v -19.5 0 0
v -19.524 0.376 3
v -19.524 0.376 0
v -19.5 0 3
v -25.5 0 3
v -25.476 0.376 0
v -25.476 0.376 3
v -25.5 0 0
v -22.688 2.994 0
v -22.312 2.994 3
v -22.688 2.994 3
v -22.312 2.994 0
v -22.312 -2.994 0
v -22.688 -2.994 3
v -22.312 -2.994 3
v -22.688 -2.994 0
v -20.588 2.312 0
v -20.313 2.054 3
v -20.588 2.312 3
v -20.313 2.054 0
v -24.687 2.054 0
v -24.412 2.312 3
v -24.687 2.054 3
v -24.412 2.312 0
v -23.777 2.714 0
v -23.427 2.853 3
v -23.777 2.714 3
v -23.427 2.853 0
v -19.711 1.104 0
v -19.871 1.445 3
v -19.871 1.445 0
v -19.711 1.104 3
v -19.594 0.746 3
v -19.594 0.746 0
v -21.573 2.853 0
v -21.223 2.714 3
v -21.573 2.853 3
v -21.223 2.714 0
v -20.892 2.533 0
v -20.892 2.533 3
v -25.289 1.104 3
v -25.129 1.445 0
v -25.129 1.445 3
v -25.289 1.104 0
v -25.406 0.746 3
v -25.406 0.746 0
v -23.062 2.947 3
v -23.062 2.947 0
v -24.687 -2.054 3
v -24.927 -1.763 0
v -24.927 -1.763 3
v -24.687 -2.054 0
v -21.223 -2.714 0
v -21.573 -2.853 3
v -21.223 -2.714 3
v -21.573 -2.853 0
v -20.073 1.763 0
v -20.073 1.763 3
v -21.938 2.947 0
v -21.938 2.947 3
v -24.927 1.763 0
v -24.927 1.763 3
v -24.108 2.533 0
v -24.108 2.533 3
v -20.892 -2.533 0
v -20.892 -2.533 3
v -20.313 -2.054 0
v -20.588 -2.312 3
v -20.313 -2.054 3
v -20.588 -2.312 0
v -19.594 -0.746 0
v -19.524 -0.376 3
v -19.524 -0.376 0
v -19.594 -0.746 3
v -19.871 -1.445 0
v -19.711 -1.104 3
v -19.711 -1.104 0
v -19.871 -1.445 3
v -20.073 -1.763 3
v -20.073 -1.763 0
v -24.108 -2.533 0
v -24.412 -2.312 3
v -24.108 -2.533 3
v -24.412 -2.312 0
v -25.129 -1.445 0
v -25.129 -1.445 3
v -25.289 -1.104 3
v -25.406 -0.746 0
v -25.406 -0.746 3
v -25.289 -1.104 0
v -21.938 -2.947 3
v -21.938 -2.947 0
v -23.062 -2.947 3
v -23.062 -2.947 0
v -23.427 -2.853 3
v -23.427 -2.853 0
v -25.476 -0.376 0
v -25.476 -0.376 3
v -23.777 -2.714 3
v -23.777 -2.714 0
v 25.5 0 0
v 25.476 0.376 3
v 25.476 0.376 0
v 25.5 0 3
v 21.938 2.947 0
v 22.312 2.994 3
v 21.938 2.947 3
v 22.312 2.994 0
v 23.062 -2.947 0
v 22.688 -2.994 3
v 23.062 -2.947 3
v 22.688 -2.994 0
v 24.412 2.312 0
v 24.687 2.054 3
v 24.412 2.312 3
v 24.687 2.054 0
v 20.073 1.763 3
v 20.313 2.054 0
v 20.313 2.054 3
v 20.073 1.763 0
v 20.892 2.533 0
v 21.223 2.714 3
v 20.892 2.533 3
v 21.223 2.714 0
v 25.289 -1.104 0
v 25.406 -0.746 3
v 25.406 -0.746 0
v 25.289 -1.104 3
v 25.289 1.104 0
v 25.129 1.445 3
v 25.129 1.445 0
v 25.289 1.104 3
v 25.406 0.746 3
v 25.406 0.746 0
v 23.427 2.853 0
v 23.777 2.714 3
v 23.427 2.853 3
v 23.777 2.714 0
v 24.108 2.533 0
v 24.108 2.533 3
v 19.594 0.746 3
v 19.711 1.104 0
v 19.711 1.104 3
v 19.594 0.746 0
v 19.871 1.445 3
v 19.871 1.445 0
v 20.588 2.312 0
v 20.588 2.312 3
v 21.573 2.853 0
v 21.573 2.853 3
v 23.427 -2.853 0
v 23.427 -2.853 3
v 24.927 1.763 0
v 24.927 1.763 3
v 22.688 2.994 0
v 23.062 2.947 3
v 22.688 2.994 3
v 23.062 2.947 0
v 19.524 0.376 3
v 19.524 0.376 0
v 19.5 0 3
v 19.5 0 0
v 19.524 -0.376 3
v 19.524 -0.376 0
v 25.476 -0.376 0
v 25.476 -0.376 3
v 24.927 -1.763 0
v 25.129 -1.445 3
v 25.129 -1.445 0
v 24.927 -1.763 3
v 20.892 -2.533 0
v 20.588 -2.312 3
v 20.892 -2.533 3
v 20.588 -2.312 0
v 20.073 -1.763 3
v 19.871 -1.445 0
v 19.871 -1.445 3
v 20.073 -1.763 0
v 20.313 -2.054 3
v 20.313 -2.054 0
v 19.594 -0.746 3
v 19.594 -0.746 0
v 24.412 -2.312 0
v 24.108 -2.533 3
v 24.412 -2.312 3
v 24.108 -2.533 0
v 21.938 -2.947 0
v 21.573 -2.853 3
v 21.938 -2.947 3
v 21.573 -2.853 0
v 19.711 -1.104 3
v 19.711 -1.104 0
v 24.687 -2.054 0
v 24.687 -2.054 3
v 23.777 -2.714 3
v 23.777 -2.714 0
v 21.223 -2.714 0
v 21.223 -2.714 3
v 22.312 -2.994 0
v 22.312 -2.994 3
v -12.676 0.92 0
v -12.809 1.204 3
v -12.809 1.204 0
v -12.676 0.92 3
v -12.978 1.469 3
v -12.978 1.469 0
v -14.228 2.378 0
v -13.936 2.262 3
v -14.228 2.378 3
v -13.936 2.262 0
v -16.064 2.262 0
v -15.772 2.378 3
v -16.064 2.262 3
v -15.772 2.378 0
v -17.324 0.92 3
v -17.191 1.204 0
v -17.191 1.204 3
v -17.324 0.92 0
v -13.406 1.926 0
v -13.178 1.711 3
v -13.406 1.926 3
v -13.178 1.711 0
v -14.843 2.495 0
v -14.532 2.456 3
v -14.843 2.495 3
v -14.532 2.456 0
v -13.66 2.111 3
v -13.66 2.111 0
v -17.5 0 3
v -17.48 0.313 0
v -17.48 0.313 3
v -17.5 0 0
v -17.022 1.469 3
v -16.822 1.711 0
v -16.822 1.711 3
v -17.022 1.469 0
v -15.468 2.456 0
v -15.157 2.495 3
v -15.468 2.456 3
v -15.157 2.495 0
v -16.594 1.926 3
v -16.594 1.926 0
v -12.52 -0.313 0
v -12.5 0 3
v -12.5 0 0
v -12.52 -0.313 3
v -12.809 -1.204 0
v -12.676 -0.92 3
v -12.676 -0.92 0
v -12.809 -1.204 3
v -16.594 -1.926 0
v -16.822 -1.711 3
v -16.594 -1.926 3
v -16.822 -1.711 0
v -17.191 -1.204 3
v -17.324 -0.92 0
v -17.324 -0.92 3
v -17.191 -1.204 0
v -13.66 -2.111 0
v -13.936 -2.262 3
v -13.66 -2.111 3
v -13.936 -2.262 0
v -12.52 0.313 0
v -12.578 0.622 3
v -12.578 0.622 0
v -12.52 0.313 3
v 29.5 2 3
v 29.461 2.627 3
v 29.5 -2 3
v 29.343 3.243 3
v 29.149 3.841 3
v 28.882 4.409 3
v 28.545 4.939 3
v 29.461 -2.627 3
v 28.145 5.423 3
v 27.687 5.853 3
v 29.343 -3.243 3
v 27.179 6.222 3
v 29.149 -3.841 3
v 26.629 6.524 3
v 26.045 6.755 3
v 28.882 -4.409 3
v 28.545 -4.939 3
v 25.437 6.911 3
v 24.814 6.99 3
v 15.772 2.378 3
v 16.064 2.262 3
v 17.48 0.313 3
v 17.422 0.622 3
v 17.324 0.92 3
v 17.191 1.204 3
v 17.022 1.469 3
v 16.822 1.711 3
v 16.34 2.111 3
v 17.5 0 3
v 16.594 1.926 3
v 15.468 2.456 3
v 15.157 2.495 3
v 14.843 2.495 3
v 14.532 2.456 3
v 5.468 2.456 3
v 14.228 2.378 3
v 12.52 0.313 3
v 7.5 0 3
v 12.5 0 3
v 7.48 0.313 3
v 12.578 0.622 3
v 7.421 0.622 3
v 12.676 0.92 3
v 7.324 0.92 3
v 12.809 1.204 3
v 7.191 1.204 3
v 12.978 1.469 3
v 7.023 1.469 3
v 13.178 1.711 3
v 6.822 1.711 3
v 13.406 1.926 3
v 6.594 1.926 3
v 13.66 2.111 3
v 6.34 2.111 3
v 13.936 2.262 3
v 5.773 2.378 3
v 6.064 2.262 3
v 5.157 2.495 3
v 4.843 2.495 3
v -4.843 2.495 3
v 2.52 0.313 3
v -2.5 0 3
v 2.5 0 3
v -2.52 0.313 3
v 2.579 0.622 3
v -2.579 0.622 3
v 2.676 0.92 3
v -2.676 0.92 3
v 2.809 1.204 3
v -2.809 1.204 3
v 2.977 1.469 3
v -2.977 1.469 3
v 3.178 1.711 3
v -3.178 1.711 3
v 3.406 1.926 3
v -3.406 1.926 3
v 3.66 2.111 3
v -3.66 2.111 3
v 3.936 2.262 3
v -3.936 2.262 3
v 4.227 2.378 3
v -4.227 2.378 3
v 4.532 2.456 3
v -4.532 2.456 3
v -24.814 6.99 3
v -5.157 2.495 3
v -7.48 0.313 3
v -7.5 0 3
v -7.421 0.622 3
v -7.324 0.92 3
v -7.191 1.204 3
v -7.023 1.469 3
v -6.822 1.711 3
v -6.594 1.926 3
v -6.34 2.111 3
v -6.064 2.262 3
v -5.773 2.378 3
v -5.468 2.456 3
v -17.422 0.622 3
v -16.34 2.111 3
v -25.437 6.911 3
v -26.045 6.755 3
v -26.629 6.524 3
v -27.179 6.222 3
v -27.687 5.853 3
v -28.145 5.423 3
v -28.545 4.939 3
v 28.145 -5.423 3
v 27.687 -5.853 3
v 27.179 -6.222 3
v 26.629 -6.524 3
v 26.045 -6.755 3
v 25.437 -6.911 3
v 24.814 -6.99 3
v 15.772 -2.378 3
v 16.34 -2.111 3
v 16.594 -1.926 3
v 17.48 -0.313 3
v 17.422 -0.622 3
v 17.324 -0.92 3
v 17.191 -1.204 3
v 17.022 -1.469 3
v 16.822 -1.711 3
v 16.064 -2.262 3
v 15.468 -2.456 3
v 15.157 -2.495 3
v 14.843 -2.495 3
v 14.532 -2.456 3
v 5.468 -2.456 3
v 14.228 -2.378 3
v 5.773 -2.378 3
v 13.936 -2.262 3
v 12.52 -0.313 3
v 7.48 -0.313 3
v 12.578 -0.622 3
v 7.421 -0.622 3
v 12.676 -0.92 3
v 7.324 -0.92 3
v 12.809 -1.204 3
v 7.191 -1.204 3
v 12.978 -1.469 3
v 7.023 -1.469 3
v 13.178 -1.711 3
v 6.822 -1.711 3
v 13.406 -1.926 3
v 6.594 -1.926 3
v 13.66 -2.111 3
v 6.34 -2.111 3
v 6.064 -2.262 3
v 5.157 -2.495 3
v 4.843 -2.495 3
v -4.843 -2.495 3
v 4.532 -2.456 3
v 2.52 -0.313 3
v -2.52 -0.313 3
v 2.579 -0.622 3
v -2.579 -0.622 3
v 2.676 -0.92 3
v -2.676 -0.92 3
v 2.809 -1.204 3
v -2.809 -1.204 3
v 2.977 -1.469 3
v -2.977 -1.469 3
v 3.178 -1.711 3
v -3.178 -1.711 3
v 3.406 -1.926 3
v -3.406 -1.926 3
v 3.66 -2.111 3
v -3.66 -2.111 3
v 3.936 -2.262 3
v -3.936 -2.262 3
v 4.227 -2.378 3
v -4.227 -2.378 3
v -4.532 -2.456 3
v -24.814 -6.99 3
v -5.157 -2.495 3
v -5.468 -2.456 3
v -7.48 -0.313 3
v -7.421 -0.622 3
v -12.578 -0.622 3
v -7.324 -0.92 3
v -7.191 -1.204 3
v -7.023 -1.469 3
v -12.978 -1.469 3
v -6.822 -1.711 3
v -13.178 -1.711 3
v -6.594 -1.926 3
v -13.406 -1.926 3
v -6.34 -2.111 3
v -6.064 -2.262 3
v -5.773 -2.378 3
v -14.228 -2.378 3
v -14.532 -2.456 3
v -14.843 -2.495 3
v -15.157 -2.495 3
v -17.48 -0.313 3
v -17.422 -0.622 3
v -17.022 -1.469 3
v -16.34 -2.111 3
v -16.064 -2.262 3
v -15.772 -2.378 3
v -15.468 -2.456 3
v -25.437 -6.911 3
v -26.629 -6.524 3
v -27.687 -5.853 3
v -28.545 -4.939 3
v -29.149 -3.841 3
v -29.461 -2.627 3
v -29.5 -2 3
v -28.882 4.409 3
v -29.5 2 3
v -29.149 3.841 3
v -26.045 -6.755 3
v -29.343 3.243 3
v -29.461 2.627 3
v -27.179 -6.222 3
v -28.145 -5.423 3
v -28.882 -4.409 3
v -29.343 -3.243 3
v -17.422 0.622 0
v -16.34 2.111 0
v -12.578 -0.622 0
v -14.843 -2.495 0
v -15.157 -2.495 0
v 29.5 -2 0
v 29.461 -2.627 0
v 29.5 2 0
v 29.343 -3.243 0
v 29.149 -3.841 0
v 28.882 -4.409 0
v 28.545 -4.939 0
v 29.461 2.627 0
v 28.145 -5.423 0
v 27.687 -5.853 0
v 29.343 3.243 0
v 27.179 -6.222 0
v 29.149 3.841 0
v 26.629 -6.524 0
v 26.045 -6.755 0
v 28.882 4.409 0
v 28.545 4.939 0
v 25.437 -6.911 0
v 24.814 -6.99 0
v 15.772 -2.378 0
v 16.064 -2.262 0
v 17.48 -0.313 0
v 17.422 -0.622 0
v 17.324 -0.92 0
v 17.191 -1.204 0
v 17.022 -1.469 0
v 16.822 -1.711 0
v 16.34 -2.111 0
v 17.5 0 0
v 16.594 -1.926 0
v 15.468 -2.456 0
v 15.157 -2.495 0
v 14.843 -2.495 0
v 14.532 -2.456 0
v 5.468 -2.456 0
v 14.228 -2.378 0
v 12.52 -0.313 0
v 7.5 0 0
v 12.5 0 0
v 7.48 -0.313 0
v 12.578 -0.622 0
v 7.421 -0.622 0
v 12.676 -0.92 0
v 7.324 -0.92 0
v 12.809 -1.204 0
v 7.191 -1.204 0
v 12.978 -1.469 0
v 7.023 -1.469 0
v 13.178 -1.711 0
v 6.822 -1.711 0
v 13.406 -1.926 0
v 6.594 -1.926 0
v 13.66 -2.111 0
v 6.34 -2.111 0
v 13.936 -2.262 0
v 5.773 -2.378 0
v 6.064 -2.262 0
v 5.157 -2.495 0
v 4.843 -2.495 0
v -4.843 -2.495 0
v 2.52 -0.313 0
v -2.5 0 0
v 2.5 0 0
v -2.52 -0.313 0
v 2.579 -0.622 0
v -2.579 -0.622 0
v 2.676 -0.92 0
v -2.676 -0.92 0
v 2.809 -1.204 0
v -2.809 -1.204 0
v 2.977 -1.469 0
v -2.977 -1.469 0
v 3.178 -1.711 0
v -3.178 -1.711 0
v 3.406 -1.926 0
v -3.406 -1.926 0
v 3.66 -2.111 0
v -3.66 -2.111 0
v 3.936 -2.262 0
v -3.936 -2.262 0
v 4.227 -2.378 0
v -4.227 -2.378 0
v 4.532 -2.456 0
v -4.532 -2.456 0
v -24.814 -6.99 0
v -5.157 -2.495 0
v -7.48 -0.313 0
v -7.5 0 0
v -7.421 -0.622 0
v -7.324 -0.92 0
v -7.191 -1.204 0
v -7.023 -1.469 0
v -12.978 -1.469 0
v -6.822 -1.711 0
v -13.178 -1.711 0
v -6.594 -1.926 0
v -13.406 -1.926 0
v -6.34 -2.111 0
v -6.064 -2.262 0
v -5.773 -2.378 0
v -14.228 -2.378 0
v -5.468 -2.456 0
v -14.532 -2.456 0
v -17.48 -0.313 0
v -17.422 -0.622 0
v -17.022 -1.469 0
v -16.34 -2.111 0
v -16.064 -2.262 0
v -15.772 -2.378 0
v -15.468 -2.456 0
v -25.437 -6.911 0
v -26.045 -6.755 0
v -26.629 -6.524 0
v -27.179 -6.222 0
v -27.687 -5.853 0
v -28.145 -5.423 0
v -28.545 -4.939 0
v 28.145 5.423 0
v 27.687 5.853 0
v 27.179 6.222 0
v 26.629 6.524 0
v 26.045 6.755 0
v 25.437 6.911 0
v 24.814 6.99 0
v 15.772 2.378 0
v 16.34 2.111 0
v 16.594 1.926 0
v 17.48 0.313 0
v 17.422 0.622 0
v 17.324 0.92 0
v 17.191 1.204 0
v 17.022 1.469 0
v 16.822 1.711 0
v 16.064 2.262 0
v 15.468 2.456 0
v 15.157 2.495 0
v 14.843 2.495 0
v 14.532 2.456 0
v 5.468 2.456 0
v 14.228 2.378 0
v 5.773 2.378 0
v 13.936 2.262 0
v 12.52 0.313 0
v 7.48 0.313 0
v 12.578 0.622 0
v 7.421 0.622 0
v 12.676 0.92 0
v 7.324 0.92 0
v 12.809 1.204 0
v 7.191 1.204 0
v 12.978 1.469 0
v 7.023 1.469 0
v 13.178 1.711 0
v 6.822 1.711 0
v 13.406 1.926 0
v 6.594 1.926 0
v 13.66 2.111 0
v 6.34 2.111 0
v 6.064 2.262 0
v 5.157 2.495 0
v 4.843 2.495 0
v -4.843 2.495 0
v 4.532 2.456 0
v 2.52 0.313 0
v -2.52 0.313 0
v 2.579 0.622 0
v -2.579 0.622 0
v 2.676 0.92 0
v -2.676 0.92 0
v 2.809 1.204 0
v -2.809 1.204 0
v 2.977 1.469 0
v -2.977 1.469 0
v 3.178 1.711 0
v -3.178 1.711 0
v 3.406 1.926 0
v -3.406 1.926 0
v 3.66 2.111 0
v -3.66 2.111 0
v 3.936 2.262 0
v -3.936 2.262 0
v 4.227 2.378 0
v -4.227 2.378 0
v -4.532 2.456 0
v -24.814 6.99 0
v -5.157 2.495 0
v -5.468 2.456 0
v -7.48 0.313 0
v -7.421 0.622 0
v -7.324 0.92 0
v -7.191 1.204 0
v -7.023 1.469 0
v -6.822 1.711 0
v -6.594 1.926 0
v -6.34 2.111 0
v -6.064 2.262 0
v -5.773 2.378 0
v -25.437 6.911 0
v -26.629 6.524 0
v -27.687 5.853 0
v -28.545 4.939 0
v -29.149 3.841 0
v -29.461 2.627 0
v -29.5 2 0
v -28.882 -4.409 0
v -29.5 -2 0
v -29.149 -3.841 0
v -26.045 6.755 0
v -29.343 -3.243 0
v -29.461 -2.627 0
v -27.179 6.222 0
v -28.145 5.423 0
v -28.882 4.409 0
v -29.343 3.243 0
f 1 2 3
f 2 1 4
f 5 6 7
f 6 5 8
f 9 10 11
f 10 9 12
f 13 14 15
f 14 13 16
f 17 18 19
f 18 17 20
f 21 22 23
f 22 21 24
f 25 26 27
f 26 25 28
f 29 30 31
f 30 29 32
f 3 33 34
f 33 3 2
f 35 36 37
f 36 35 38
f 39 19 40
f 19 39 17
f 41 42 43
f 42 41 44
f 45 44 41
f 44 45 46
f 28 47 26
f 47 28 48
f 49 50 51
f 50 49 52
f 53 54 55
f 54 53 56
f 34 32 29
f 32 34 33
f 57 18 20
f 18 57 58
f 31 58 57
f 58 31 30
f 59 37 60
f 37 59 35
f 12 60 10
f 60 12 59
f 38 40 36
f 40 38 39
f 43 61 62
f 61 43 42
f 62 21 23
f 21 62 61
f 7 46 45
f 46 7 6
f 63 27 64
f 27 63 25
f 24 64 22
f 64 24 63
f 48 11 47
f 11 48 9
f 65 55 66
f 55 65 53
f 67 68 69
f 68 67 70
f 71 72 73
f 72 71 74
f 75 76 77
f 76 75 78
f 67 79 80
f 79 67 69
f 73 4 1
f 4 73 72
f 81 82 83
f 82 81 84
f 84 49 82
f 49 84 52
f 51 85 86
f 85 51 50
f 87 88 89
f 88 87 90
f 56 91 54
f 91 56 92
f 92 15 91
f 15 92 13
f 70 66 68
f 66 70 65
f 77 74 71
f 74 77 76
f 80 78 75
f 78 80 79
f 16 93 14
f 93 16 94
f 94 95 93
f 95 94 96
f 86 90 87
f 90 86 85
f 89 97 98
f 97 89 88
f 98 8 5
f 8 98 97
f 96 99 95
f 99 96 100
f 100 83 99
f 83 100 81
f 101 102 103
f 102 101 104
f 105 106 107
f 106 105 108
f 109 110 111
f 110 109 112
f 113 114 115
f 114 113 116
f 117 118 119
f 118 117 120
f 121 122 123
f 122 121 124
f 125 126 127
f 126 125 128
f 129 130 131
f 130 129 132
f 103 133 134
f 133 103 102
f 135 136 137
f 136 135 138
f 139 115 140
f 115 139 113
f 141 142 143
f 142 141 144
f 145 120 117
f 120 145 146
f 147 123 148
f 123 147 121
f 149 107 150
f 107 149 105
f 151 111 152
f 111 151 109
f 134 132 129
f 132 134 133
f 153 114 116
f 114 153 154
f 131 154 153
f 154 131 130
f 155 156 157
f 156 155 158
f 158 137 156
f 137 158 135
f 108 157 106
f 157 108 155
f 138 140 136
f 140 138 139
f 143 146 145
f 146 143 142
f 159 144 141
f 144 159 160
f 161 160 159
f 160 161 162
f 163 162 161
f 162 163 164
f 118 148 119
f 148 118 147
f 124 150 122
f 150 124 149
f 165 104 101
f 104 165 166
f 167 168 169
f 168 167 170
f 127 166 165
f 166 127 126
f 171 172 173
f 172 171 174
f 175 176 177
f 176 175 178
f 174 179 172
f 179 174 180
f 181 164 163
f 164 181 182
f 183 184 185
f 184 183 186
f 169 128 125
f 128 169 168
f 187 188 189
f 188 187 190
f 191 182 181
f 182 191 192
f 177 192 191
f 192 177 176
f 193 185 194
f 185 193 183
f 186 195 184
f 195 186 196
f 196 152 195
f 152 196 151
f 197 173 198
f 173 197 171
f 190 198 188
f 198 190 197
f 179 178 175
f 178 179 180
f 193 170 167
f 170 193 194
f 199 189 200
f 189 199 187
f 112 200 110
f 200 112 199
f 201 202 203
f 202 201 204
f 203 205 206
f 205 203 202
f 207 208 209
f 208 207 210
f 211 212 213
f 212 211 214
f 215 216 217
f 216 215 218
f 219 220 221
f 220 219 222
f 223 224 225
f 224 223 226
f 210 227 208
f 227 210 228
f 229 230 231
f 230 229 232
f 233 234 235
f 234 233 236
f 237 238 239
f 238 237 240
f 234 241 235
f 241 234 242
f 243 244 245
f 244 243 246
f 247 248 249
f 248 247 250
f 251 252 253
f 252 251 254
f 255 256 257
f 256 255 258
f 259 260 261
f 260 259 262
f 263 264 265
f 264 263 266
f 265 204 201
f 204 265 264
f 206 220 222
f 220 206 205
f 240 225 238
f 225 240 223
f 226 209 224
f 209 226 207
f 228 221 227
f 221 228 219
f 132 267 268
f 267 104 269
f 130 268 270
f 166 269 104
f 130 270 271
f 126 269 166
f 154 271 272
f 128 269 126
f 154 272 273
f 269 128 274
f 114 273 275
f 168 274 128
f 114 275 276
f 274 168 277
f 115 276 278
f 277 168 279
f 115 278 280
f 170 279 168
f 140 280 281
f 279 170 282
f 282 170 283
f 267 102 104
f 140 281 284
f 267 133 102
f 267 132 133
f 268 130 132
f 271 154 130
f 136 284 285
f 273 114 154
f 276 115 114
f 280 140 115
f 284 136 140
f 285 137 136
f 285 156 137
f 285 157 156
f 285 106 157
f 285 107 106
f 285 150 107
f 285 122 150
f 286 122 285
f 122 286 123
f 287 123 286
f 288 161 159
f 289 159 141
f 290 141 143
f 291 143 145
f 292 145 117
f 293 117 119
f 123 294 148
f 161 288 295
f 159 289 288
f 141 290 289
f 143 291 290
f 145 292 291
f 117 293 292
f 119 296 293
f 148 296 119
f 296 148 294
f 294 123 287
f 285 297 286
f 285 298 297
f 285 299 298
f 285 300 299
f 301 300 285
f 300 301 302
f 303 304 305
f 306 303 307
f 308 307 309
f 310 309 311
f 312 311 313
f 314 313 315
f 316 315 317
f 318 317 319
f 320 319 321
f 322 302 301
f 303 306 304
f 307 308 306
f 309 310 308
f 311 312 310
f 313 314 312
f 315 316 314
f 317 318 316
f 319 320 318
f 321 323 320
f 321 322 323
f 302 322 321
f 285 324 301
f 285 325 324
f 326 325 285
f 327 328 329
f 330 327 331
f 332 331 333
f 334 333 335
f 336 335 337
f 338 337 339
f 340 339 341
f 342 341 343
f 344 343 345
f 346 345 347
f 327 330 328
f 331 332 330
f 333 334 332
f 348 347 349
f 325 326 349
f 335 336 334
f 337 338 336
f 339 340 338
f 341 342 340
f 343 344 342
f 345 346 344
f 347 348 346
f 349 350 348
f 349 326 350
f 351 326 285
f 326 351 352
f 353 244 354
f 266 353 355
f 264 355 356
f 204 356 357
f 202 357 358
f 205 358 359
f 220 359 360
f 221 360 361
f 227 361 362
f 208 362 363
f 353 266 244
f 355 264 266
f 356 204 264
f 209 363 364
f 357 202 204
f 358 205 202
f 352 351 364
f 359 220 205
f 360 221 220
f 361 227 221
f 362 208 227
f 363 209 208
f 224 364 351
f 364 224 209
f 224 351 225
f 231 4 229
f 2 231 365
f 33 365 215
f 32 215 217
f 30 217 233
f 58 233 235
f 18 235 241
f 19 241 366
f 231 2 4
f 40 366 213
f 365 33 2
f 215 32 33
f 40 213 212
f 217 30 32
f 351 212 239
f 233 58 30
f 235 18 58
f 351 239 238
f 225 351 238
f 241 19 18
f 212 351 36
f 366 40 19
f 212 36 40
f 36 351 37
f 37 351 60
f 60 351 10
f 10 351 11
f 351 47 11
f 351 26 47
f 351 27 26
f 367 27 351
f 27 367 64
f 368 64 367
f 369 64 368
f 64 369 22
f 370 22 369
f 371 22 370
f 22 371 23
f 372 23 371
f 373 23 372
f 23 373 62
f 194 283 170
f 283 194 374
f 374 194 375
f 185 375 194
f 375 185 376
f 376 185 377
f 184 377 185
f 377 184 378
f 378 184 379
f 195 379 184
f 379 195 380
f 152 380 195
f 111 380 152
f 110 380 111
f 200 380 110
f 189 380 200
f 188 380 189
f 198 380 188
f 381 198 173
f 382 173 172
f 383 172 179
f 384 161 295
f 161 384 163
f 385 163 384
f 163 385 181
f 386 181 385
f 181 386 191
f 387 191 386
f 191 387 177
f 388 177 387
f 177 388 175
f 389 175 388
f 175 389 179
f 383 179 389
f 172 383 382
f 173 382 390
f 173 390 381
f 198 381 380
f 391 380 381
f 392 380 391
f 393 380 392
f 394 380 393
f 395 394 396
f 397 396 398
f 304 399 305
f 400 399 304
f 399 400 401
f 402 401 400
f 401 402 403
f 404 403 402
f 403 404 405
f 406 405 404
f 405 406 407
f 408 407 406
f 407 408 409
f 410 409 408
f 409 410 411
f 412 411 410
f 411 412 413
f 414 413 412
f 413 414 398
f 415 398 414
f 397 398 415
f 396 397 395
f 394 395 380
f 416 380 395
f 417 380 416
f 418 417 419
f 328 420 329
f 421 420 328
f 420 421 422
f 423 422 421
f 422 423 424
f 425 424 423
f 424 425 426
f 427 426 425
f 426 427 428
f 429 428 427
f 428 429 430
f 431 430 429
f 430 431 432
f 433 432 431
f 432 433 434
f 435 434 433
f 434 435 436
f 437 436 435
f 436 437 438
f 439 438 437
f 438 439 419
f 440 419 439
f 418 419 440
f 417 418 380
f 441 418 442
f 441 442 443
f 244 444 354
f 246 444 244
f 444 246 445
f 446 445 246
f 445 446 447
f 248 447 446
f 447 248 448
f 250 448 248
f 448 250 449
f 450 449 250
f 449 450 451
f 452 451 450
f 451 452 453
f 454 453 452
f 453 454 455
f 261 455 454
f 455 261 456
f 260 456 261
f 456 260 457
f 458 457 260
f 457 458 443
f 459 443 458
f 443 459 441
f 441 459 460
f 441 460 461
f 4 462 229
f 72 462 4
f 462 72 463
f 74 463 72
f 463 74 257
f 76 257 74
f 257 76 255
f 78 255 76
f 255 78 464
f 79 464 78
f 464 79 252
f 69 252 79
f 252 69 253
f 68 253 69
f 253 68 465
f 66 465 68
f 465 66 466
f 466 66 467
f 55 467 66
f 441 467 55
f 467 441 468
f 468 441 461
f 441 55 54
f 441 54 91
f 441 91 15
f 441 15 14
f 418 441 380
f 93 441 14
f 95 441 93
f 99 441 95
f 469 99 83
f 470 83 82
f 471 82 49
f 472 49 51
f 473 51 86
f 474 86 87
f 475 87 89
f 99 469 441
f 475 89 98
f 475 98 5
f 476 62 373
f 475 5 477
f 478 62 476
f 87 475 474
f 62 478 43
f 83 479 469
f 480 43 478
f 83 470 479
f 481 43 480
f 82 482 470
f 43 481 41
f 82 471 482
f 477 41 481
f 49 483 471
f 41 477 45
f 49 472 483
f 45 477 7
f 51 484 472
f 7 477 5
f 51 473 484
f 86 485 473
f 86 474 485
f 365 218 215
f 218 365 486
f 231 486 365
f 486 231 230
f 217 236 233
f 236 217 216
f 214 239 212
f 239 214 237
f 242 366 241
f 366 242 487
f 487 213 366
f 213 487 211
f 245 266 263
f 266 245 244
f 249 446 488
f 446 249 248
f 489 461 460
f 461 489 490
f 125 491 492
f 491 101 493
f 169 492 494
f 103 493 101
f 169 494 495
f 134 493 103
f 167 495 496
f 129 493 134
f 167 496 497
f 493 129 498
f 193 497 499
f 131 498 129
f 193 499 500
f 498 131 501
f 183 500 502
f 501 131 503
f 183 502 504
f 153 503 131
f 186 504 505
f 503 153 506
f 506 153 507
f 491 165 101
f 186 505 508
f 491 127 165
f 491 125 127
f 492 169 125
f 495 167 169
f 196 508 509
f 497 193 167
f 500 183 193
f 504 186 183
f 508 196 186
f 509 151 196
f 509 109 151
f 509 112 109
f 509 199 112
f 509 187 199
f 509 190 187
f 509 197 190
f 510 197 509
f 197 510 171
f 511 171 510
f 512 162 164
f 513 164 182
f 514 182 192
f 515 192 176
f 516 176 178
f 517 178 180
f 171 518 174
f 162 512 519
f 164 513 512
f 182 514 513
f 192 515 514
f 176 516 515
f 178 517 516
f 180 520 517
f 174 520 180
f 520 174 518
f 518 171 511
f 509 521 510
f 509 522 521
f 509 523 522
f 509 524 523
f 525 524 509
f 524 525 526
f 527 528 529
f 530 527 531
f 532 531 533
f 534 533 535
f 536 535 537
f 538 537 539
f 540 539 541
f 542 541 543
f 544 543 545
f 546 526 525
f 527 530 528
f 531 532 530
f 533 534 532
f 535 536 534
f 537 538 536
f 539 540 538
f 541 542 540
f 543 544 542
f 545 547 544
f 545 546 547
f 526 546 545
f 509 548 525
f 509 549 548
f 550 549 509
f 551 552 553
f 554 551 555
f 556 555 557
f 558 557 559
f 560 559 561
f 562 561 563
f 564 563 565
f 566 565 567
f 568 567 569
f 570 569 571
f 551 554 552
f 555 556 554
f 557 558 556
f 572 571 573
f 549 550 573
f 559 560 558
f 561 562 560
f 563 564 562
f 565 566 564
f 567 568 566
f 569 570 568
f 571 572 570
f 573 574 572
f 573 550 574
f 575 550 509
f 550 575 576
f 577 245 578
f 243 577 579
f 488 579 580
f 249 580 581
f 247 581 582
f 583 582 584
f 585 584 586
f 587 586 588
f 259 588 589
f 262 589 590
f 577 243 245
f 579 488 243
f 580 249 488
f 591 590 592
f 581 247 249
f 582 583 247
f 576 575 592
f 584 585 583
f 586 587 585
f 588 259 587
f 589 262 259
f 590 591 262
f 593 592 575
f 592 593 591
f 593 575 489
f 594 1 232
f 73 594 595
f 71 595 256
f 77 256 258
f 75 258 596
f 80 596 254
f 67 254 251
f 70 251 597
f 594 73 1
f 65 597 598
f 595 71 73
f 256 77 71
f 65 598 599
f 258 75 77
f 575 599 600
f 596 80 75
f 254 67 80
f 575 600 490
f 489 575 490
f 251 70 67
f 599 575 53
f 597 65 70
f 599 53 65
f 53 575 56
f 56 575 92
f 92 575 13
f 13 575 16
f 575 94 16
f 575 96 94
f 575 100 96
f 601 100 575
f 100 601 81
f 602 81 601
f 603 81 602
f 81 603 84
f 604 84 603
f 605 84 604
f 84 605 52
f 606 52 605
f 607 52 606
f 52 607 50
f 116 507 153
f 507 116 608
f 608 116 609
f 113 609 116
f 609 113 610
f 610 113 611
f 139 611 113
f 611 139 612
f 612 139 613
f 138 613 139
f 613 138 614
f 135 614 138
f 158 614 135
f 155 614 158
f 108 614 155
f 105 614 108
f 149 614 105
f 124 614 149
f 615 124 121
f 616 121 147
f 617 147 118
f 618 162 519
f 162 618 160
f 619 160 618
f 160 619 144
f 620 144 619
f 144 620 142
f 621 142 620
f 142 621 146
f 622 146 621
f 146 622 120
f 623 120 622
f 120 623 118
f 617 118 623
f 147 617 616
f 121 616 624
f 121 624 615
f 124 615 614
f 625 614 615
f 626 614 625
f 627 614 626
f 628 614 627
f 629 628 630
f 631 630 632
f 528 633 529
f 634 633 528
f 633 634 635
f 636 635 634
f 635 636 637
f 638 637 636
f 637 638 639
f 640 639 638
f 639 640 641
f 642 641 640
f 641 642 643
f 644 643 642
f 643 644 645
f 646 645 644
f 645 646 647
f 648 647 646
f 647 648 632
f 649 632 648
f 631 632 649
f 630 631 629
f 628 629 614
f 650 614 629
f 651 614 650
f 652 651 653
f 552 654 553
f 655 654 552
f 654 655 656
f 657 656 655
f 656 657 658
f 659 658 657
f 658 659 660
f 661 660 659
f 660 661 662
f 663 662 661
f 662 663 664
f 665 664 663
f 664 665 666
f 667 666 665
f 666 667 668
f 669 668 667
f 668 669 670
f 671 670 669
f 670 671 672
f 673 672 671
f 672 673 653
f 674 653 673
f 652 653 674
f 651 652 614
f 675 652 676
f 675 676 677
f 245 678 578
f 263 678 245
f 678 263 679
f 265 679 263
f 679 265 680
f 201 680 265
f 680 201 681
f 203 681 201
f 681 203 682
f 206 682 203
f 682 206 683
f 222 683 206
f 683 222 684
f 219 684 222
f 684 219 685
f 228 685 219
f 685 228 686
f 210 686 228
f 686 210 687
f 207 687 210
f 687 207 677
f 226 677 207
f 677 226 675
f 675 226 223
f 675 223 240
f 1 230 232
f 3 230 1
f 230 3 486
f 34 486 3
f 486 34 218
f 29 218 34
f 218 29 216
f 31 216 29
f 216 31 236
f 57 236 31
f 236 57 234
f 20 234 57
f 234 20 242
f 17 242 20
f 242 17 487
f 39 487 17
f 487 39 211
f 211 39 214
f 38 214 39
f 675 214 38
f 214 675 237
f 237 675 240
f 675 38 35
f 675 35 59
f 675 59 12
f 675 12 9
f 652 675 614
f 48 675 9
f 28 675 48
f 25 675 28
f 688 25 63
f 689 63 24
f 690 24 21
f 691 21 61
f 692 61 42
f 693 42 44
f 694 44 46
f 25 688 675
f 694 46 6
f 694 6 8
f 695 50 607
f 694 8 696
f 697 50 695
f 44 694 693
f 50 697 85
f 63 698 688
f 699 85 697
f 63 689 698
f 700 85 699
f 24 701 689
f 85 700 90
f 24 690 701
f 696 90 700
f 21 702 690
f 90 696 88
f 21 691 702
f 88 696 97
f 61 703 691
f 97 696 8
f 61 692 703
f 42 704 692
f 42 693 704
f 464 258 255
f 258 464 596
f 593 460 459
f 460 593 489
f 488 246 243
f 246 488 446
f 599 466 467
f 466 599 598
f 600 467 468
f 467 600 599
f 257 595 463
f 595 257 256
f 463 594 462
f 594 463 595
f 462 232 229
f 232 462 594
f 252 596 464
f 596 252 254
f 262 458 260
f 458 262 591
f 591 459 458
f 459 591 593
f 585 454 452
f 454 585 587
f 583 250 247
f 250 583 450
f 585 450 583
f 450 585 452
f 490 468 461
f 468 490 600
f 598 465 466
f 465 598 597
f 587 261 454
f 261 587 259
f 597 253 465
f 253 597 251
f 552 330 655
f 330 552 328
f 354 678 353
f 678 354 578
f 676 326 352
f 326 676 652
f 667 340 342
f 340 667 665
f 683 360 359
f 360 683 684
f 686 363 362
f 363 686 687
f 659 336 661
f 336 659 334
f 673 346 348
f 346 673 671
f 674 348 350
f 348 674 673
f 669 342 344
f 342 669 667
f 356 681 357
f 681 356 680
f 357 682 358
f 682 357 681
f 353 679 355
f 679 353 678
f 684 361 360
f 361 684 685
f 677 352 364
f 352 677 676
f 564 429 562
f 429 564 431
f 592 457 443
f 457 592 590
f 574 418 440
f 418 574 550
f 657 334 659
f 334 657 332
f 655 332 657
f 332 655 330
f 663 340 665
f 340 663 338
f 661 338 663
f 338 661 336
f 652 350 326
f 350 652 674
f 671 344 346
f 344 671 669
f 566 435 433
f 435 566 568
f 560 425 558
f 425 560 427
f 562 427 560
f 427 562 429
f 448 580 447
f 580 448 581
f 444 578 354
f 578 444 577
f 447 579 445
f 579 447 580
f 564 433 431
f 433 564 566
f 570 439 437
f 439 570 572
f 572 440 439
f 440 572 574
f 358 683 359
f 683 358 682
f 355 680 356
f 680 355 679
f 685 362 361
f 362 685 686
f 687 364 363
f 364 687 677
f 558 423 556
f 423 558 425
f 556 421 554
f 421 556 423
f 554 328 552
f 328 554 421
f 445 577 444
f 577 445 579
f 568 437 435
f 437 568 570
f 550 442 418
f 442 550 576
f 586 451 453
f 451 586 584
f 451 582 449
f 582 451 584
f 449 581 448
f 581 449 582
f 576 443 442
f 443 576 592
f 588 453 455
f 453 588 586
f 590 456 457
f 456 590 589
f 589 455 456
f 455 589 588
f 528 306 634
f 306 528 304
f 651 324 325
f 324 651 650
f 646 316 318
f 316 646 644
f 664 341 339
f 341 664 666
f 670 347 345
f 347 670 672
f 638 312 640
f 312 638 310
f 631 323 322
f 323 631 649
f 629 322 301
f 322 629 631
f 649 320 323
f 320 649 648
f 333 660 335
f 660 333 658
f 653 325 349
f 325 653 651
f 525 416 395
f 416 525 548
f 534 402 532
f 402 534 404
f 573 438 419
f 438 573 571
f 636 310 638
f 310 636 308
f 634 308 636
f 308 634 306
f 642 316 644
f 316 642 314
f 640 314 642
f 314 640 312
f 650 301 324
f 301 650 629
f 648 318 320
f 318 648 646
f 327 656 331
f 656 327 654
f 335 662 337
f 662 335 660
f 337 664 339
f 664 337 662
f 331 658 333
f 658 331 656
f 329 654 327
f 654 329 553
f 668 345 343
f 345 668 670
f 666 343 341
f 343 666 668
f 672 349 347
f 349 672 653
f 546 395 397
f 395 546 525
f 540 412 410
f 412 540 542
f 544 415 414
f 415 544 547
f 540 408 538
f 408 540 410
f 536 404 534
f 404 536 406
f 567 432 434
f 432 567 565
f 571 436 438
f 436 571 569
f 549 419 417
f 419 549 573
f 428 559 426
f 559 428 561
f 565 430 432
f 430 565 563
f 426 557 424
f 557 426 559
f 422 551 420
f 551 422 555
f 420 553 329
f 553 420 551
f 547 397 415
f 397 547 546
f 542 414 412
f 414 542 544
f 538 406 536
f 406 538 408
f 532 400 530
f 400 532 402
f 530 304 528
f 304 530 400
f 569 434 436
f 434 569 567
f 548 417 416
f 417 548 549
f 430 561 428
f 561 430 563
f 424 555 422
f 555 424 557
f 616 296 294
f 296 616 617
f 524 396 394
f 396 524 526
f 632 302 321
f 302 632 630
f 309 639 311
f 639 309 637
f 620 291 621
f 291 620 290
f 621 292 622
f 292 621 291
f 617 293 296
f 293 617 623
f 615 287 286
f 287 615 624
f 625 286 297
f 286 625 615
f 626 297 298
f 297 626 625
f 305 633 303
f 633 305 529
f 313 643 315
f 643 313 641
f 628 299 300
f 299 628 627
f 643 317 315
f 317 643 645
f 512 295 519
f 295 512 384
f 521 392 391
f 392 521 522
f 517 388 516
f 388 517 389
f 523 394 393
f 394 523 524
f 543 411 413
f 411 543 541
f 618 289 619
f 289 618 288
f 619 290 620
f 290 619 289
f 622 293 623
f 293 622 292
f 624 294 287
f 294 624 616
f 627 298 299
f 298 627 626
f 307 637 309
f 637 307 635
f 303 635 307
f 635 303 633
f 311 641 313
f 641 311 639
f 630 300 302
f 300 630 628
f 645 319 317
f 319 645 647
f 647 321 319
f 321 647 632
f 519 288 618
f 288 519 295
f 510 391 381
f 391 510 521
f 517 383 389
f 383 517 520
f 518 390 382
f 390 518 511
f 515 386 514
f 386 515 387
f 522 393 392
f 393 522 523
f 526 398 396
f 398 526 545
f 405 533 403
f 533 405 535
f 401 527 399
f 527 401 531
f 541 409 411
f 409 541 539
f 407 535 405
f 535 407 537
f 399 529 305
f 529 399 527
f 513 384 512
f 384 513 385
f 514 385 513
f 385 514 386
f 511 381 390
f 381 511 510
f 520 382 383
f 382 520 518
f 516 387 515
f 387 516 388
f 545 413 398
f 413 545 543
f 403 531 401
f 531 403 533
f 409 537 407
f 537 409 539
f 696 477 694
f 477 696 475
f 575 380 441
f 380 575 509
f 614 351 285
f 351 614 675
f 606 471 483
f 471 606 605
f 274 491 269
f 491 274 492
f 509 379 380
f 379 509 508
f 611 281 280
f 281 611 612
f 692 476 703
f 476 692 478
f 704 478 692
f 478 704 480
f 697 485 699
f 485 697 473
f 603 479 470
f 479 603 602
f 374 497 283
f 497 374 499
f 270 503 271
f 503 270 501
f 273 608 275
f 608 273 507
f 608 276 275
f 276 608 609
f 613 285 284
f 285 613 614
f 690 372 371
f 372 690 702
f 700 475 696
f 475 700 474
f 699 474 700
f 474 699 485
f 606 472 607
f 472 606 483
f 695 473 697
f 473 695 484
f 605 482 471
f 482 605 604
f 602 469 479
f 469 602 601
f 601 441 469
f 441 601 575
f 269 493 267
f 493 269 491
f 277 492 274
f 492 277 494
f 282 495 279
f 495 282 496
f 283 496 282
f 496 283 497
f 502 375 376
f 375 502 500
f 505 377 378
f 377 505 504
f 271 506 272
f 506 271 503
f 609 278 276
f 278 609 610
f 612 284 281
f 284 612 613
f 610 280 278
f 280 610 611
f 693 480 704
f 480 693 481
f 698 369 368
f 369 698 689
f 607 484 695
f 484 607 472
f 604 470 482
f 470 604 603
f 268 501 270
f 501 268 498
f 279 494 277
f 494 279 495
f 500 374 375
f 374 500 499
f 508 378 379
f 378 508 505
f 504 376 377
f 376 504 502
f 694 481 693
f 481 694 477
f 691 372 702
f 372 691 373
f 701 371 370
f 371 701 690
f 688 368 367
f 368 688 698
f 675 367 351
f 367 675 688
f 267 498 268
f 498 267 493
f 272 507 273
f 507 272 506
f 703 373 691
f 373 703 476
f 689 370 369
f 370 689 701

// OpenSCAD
$fn = 50;


difference() {
	union() {
		hull() {
			translate(v = [-24.5000000000, 2.0000000000, 0]) {
				cylinder(h = 3, r = 5);
			}
			translate(v = [24.5000000000, 2.0000000000, 0]) {
				cylinder(h = 3, r = 5);
			}
			translate(v = [-24.5000000000, -2.0000000000, 0]) {
				cylinder(h = 3, r = 5);
			}
			translate(v = [24.5000000000, -2.0000000000, 0]) {
				cylinder(h = 3, r = 5);
			}
		}
	}
	union() {
		#translate(v = [-22.5000000000, 0.0000000000, 0]) {
			cylinder(h = 3, r = 3.0000000000);
		}
		#translate(v = [22.5000000000, 0.0000000000, 0]) {
			cylinder(h = 3, r = 3.0000000000);
		}
		#translate(v = [-22.5000000000, 0.0000000000, -100.0000000000]) {
			cylinder(h = 200, r = 3.0000000000);
		}
		#translate(v = [-22.5000000000, 0.0000000000, -100.0000000000]) {
			cylinder(h = 200, r = 3.0000000000);
		}
		#translate(v = [22.5000000000, 0.0000000000, -100.0000000000]) {
			cylinder(h = 200, r = 3.0000000000);
		}
		#translate(v = [22.5000000000, 0.0000000000, -100.0000000000]) {
			cylinder(h = 200, r = 3.0000000000);
		}
		#translate(v = [-22.5000000000, 0.0000000000, 0]) {
			cylinder(h = 3, r = 1.5000000000);
		}
		#translate(v = [22.5000000000, 0.0000000000, 0]) {
			cylinder(h = 3, r = 1.5000000000);
		}
		#translate(v = [-22.5000000000, 0.0000000000, 0]) {
			cylinder(h = 3, r = 1.5000000000);
		}
		#translate(v = [22.5000000000, 0.0000000000, 0]) {
			cylinder(h = 3, r = 1.5000000000);
		}
		#translate(v = [-22.5000000000, 0.0000000000, 0]) {
			cylinder(h = 3, r = 1.5000000000);
		}
		#translate(v = [22.5000000000, 0.0000000000, 0]) {
			cylinder(h = 3, r = 1.5000000000);
		}
		#translate(v = [-15.0000000000, 0, 0]) {
			cylinder(h = 3, r = 2.5000000000);
		}
		#translate(v = [-5.0000000000, 0, 0]) {
			cylinder(h = 3, r = 2.5000000000);
		}
		#translate(v = [5.0000000000, 0, 0]) {
			cylinder(h = 3, r = 2.5000000000);
		}
		#translate(v = [15.0000000000, 0, 0]) {
			cylinder(h = 3, r = 2.5000000000);
		}
	}
}
